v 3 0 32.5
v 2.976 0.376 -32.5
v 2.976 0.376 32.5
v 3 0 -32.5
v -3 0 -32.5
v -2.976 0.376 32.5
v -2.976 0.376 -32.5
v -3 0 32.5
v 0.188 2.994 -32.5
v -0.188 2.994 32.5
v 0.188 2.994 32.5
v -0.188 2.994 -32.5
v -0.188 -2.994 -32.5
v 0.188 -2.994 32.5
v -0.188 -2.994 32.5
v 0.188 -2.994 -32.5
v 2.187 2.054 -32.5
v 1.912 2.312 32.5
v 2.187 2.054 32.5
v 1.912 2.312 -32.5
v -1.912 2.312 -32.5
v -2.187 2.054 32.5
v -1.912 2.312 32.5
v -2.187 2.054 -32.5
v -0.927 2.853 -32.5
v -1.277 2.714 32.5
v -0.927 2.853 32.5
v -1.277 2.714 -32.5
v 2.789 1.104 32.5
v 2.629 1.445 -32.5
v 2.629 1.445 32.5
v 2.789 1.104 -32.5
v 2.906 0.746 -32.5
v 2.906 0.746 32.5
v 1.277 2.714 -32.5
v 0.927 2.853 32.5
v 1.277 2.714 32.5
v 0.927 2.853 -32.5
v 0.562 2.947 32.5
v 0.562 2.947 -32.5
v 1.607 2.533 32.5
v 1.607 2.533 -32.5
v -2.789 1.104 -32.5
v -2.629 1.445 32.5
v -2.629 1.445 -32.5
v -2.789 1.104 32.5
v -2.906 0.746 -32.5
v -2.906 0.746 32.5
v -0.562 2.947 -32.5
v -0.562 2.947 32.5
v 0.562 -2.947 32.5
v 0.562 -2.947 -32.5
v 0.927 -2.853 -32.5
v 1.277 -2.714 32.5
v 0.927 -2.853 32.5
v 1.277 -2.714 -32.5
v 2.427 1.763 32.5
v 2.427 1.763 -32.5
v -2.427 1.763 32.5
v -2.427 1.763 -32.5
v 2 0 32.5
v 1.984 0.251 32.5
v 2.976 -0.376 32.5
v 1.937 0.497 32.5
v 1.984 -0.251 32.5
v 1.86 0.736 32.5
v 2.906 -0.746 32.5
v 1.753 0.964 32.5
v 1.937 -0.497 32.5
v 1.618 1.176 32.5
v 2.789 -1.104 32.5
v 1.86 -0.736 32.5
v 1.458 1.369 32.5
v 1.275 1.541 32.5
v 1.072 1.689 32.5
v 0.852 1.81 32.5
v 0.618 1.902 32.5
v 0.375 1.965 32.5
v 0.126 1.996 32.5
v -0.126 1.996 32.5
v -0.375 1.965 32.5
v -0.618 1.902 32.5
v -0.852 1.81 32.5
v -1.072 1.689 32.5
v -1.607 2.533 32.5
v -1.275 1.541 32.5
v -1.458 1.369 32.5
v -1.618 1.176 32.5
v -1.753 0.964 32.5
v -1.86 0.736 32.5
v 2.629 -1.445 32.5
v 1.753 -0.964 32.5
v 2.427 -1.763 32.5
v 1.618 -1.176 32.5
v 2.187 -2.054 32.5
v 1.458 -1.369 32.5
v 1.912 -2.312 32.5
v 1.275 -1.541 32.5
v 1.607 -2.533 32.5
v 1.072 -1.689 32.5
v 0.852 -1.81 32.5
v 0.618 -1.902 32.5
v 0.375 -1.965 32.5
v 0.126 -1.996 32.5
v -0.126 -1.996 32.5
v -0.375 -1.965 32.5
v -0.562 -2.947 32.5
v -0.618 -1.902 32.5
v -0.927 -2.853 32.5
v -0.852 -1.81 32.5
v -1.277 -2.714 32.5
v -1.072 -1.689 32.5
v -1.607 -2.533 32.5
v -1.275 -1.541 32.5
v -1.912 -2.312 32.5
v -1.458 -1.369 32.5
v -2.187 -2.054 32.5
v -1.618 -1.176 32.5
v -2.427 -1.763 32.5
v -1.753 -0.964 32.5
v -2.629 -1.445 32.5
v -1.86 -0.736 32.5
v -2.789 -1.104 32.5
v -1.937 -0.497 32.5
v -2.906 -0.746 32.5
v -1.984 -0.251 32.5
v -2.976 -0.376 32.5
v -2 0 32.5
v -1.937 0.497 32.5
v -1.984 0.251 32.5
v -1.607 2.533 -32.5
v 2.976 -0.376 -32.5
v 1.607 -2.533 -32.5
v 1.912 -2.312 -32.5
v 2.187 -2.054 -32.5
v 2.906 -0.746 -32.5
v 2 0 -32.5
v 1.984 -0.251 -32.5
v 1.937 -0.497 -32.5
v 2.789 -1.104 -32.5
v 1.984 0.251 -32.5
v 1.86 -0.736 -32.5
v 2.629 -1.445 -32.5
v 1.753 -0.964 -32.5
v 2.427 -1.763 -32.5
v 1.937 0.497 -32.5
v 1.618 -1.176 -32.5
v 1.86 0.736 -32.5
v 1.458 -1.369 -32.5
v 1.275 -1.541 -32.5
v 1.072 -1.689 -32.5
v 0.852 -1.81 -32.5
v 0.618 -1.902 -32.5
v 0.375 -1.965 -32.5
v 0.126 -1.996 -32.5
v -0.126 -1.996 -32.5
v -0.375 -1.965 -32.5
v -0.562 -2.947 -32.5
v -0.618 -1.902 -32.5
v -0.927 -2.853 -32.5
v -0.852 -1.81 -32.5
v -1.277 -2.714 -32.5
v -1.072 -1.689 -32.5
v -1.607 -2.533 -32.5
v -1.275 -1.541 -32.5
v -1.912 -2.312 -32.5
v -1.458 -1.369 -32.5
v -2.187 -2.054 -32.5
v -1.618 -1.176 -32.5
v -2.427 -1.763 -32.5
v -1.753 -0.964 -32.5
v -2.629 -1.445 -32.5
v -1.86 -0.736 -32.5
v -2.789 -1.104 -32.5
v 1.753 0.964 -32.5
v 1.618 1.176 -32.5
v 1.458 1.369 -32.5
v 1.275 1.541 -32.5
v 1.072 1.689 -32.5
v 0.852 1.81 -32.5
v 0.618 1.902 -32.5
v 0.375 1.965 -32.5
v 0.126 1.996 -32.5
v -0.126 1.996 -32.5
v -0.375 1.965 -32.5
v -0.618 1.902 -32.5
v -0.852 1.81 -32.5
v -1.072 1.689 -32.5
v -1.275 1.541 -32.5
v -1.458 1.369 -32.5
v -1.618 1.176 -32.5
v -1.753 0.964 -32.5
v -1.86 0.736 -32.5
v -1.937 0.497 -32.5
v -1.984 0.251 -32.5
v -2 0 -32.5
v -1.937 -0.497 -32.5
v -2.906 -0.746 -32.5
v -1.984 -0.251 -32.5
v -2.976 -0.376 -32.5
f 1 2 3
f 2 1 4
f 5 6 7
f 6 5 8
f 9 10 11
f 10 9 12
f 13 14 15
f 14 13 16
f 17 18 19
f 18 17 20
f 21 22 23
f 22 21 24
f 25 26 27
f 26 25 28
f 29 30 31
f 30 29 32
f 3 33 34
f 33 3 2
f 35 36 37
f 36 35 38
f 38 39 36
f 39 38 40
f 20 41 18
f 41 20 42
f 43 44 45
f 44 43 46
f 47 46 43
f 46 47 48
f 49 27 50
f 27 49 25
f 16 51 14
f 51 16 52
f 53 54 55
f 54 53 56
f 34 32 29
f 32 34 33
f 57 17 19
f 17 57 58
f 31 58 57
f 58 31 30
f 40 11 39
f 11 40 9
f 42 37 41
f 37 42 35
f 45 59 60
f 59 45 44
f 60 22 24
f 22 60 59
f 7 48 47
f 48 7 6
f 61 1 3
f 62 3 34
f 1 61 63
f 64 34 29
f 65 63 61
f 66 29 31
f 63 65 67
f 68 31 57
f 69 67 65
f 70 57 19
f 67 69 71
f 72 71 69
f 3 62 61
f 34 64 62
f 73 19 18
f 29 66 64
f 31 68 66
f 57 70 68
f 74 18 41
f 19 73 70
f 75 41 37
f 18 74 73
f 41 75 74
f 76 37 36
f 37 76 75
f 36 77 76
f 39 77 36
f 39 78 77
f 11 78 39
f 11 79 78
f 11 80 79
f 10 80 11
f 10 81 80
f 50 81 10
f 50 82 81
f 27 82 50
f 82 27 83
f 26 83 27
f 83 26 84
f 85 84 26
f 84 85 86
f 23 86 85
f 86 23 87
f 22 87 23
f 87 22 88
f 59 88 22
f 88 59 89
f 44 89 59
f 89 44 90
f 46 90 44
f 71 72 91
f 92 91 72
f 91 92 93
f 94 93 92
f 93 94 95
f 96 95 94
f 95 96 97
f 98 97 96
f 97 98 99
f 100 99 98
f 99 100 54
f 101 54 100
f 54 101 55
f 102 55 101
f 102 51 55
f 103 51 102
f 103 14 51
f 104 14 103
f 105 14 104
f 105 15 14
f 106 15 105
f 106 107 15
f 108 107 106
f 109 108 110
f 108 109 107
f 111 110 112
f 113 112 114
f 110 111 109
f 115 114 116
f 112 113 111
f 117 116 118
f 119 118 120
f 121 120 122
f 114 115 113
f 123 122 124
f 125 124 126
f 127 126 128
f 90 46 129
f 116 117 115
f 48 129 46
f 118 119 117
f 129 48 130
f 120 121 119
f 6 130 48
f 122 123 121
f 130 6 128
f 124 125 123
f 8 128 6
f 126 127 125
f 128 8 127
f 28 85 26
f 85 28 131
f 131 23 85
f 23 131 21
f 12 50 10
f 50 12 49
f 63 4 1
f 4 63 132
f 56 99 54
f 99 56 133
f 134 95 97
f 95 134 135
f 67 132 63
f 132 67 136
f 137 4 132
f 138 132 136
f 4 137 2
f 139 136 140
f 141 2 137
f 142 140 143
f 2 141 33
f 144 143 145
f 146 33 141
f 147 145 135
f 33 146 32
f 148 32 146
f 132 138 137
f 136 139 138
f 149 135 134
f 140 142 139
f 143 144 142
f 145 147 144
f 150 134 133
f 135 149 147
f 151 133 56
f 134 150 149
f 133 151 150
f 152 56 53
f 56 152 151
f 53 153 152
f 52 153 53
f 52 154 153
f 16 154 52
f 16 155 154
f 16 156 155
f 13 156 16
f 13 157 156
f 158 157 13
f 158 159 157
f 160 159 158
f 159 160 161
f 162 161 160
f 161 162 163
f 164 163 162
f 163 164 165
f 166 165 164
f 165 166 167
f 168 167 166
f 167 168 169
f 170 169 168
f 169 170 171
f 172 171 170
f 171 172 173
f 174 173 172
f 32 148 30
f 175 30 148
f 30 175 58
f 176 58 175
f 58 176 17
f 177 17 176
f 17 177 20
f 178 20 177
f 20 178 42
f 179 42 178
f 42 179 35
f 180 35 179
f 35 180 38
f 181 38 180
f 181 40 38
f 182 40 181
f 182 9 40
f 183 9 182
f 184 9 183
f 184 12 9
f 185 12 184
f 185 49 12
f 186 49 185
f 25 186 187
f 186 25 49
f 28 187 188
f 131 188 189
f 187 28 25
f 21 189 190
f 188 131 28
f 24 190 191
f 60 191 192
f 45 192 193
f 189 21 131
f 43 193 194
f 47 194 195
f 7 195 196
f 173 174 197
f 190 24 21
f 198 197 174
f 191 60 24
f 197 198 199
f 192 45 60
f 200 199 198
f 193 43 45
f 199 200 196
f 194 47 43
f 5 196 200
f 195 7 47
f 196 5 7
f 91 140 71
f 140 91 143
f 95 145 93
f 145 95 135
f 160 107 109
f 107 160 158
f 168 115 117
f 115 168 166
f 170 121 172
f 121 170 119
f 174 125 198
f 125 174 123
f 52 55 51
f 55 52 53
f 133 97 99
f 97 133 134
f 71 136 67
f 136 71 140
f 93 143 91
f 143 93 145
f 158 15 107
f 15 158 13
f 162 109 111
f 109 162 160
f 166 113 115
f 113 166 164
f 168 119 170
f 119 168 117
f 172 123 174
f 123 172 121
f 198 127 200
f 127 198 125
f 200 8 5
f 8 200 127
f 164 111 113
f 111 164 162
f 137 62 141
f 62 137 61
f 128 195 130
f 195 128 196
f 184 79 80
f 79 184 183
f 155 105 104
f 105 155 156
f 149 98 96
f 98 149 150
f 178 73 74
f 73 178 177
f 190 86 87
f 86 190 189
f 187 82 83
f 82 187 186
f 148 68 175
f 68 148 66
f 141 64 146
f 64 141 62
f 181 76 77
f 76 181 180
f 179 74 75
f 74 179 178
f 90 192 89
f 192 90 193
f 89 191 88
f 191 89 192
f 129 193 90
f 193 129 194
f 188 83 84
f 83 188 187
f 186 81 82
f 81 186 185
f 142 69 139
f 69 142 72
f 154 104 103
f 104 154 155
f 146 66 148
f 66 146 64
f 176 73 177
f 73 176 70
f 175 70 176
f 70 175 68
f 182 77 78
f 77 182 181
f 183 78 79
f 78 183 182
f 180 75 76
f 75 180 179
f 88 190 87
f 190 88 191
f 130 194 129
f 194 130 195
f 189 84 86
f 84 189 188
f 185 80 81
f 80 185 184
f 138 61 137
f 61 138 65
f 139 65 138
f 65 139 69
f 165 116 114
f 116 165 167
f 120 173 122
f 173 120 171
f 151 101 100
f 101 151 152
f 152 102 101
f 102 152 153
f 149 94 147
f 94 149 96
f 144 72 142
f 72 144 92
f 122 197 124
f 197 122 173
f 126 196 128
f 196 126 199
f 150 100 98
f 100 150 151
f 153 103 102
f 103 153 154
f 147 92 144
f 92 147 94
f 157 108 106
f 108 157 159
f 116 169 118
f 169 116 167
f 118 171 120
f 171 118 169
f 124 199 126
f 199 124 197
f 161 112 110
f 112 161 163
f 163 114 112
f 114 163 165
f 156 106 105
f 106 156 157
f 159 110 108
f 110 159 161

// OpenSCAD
$fn = 50;


difference() {
	union() {
		translate(v = [0, 0, -32.5000000000]) {
			cylinder(h = 65, r = 3.0000000000);
		}
	}
	union() {
		translate(v = [0, 0, -100.0000000000]) {
			cylinder(h = 200, r = 2);
		}
	}
}
